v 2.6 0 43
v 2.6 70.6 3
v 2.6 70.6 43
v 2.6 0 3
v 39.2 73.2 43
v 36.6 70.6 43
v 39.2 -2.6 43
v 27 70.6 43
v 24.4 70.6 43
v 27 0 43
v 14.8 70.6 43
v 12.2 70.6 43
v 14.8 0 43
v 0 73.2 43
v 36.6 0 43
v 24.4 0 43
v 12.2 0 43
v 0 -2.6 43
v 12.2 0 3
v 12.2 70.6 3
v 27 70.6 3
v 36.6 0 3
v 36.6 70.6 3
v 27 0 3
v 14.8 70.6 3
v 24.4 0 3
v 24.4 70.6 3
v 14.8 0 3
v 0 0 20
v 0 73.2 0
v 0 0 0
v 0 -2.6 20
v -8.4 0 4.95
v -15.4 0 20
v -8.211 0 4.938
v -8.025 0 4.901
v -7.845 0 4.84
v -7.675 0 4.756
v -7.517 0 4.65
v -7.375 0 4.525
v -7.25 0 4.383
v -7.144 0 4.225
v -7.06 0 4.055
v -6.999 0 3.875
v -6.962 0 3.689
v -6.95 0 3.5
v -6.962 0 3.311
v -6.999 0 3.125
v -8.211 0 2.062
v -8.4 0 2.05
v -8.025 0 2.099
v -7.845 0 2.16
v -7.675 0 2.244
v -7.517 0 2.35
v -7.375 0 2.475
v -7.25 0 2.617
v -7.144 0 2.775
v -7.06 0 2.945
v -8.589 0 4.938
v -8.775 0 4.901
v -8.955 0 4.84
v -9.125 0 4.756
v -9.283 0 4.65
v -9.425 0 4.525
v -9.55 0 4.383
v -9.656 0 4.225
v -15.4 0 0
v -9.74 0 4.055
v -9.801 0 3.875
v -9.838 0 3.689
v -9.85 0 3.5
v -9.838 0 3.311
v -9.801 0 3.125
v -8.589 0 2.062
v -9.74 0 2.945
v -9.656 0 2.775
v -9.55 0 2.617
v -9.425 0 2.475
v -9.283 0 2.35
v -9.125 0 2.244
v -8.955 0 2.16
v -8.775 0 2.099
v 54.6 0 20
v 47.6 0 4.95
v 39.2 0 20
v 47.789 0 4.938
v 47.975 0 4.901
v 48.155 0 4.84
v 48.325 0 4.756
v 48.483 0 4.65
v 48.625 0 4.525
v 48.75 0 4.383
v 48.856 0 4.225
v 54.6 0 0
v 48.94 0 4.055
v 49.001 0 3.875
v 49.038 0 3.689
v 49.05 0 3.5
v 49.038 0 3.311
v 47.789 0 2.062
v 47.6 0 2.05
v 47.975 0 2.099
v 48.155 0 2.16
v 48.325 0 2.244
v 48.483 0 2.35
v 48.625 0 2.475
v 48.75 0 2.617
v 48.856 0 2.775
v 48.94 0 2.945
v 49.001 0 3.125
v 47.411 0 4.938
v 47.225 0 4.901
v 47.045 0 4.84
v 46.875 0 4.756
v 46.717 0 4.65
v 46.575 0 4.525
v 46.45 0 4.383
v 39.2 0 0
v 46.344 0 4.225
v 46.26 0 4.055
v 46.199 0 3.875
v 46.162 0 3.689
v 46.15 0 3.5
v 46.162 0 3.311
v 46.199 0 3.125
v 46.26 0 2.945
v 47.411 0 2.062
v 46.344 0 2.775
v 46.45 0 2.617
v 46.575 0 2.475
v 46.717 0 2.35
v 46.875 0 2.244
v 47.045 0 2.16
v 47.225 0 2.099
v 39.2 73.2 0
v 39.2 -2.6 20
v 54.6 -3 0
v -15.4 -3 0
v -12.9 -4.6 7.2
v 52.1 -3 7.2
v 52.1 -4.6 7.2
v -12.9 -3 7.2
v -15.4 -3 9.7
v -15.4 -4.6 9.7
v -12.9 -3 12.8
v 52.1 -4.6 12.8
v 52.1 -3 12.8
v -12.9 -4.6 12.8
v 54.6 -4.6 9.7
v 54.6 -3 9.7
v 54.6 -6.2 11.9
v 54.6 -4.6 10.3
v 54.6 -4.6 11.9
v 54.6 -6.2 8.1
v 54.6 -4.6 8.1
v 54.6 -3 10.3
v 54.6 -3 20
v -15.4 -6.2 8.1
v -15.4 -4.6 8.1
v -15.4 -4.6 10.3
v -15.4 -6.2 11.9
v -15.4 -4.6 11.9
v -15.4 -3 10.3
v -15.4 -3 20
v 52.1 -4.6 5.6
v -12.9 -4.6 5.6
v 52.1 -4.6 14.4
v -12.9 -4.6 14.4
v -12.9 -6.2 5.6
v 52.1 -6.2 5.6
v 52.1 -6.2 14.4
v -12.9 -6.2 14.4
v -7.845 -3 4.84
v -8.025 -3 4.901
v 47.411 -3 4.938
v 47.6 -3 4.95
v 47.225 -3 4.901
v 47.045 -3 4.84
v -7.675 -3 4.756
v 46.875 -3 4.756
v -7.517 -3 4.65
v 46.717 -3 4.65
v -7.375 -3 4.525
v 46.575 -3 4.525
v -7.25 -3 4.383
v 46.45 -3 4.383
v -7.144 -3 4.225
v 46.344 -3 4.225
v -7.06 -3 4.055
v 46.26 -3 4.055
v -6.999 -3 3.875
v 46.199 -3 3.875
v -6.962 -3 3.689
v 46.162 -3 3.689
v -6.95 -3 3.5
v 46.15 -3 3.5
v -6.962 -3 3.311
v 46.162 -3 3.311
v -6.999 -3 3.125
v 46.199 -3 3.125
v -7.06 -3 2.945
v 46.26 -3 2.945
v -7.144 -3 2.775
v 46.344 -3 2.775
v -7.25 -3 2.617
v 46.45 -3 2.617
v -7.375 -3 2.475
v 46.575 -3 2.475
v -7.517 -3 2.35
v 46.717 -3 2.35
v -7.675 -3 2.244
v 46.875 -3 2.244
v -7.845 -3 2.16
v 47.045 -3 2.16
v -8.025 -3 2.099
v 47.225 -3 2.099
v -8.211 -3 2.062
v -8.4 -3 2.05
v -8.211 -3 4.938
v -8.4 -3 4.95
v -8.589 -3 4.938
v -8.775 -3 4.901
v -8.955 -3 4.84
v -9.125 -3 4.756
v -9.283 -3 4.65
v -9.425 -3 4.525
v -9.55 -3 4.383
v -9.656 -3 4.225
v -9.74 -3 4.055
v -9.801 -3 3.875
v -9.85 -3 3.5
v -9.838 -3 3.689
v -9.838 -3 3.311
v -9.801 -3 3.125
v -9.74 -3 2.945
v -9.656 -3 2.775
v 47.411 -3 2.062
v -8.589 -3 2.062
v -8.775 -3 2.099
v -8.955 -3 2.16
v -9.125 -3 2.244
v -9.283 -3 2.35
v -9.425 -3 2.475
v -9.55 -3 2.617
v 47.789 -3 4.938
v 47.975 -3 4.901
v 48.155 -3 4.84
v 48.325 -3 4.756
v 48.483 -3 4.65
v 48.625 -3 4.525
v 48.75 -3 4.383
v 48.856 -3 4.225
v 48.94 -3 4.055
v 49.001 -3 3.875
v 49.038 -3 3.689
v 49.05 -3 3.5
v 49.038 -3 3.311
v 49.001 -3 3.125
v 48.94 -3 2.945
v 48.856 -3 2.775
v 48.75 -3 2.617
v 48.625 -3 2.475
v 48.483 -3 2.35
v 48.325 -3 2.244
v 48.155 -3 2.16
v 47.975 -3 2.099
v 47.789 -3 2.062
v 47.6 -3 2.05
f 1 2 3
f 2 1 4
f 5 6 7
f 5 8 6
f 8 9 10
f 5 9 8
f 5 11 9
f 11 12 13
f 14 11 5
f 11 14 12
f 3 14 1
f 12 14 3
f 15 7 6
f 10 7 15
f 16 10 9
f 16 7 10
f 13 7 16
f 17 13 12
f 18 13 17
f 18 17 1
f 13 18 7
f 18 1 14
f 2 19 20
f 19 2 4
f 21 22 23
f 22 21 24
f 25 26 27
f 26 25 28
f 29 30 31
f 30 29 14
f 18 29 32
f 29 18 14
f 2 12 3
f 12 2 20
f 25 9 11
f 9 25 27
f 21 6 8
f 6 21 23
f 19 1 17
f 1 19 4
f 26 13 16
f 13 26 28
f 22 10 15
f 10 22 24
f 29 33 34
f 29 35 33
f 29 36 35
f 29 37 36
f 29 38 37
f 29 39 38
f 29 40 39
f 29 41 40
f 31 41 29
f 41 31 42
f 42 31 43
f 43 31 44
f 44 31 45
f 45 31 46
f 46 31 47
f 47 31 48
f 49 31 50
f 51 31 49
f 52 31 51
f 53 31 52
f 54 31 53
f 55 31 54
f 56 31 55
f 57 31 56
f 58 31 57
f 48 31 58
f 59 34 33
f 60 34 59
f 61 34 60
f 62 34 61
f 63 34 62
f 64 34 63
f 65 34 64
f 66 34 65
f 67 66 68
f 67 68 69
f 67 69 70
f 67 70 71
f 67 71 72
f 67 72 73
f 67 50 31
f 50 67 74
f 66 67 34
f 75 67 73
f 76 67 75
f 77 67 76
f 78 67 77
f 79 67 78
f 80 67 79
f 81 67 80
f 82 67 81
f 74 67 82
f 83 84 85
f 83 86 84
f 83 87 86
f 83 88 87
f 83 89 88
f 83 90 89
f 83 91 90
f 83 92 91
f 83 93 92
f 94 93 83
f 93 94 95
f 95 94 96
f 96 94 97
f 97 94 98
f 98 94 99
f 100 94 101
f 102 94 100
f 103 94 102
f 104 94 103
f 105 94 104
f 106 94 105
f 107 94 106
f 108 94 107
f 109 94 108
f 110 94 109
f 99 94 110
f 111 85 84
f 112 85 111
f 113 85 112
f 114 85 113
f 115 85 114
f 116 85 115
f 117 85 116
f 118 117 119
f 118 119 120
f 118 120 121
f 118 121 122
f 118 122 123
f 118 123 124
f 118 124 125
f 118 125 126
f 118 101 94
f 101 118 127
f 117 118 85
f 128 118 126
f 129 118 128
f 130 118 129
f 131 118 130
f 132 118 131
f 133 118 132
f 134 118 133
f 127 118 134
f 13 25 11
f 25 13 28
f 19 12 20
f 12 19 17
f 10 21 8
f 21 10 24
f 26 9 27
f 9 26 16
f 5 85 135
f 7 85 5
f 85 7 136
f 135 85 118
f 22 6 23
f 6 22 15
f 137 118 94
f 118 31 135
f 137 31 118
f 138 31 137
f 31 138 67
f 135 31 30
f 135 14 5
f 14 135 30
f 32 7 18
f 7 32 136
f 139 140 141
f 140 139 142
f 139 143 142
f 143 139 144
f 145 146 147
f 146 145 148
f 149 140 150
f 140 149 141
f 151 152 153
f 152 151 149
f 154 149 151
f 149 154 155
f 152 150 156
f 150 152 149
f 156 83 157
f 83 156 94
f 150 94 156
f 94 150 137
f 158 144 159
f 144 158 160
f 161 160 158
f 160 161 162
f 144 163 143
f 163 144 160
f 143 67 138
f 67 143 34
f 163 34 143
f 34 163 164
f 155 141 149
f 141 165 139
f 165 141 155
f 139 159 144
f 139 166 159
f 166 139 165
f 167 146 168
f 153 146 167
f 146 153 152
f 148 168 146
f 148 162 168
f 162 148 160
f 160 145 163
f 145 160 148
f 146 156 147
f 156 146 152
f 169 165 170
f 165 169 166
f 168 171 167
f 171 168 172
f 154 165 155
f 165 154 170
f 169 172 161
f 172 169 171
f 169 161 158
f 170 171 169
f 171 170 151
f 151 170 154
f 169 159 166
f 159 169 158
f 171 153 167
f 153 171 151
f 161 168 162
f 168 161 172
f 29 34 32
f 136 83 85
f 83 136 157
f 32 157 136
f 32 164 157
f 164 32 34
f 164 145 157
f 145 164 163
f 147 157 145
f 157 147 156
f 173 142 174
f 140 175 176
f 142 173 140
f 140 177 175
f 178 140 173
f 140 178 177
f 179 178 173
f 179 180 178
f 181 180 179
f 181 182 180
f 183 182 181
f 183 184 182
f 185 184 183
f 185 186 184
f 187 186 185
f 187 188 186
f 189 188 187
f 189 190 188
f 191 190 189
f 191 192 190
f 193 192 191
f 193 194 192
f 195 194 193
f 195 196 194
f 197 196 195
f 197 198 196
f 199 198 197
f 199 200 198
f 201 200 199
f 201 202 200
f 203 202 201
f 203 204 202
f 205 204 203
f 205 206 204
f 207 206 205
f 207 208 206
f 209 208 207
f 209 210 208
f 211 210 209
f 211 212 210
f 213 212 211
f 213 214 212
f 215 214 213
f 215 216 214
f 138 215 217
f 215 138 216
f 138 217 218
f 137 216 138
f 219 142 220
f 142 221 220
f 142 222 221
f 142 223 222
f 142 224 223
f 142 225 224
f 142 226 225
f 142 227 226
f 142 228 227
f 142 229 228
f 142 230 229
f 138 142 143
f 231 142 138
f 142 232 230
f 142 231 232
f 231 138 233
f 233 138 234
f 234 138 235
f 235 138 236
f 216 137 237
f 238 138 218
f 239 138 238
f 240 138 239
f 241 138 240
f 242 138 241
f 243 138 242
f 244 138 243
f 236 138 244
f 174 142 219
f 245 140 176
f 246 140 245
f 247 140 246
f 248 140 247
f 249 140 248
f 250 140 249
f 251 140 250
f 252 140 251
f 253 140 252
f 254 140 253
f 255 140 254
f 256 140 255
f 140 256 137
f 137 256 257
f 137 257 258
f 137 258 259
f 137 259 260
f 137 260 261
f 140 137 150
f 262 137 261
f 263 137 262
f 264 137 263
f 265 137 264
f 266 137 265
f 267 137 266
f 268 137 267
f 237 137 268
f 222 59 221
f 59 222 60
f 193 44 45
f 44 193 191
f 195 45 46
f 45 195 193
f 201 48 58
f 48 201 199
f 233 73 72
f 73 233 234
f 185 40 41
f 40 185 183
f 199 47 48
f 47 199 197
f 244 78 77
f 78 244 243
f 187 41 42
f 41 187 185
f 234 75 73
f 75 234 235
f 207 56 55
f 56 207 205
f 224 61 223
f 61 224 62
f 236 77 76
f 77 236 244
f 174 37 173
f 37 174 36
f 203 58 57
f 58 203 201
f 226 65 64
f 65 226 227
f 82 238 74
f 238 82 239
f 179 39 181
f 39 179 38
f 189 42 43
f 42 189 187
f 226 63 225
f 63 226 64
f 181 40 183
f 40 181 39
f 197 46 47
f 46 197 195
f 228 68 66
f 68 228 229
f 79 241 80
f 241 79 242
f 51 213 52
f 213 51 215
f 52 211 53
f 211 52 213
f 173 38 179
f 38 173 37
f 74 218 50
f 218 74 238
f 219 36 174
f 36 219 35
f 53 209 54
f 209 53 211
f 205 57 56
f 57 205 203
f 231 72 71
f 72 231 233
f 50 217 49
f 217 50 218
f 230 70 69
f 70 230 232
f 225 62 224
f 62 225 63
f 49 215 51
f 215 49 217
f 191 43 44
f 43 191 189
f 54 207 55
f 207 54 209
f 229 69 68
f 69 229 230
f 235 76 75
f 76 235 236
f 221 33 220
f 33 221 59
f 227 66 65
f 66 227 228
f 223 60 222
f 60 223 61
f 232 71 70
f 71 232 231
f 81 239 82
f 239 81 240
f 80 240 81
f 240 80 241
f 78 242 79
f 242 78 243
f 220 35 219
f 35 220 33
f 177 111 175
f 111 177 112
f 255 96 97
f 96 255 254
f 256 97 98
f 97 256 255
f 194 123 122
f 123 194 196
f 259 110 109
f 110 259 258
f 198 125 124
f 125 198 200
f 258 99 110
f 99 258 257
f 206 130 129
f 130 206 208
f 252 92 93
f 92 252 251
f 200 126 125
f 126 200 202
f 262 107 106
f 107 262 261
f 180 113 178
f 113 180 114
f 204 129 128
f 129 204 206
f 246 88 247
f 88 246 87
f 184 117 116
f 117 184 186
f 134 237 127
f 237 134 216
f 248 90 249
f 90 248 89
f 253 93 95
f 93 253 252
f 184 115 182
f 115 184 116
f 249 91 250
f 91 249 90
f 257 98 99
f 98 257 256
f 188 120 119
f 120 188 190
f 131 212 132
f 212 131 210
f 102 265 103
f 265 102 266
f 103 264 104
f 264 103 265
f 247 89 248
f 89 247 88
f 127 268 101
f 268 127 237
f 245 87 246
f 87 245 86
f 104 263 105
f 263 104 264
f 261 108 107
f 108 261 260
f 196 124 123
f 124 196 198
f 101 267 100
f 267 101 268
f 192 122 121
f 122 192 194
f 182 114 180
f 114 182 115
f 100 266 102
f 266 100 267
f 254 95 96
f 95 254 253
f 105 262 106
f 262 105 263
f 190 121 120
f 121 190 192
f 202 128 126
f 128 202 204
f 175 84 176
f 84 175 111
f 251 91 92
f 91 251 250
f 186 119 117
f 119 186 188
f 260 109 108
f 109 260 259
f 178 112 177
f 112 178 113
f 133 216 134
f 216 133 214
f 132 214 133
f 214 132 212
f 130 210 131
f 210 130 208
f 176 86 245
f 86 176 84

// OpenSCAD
// ============================================================
// 3-Bay Vertical 2.5" SSD Holder w/ T-Slot Rail Mount
// ============================================================
// Holds three 2.5" drives (70 x 100 x 9 mm) upright, SIDE BY SIDE
// ALONG THE RAIL — all three sit the same distance out from the
// rail rather than receding front-to-back, so no drive hangs off
// the end of a long lever arm. Each bay is a fully enclosed tub
// (floor + left/right dividers + front/back walls) with ONLY the
// top open, so the connector end of each drive stays reachable
// for cables while the drive itself is boxed in on every side.
//
// Mounting: ONE flat plate carrying ONE T-shaped key, running the
// full plate_len (default 70mm) along the rail. The key slides
// into the rail's channel from the end of the extrusion and is
// trapped by that channel's back wall and both side lips; the
// plate bears flat against the rail face. Tapered lead-ins at
// both ends of the key let it start from either direction and
// back straight off the way it went on.
//
// Note on "the longer side": with the drives side by side the
// comb's mounting face is its 39.2mm one — the 70mm faces are the
// ends of the stack, and mounting there is what puts the drives
// back in a front-to-back line. So the plate is instead EXTENDED
// to 70mm along the rail, overhanging the comb ~15mm at each end.
// That's the longest rail engagement available without going back
// to front-to-back drives. Set plate_len = comb_width for a flush
// plate if the overhang is in the way.
//
// Optional M3 set screws (set_screw = true) run through the
// plate's two overhanging ends, where nothing is behind them so a
// driver reaches with the drives still in. Driving them against
// the rail face pushes the bracket out and pulls the key's head
// up against the slot lips, taking the play out of the slide fit.
// Without them the bracket still holds but can rock slightly on
// its clearances.
//
// The rail is assumed HORIZONTAL, drives standing vertically
// (open top up) perpendicular to it. The rail's bottom sits flush
// with the bottom of the holder.
//
// Default key dims (6.2mm mouth / 9.4mm channel) match common
// 20-series T-slot/V-slot extrusion; measure your actual rail and
// adjust slot_mouth/channel_w/lip_thickness/head_depth below if
// it differs — a wrong fit either won't slide in or will be loose.
//
// Print settings: 3-4 walls, 20%+ infill, NO SUPPORTS — the comb
// floor and the mounting plate both sit flat on the bed, and the
// key's 3.2mm horizontal protrusion is short enough to print
// clean. PETG or ABS recommended since drives run warm; PLA is
// fine for a desk build.
// ============================================================

$fn = 48;

// ---- Drive dimensions ----
drive_w = 70;             // drive width (mm) - horizontal, pointing away from the rail
drive_h = 100;             // drive height (mm) - reference only, top is open
drive_t = 9;               // drive thickness (mm) - stacking direction, along the rail
drive_t_clearance = 0.6;   // total slack added to slot thickness for easy insertion
drive_y_clearance = 0.6;   // total slack added along the drive's width

// ---- Holder geometry ----
n_bays      = 3;
wall_t      = 2.6;   // divider / front-wall / back-wall thickness
wall_height = 40;    // how far up the walls enclose the drive (rest is open, at top)
floor_t     = 3;     // base plate thickness
slot_gap    = drive_t + drive_t_clearance;
bay_depth   = drive_w + drive_y_clearance; // how far each bay reaches away from the rail

// ---- Rail mount: one flat plate, one key ----
rail_size     = 20;    // T-slot extrusion cross-section (square)
plate_t       = 3;     // mounting plate thickness
plate_len     = 70;    // how far the plate runs ALONG the rail (engagement length)
plate_h       = 20;    // plate height - matches the rail face it bears against
slot_mouth    = 6.2;   // width of the narrow opening on the rail face
channel_w     = 9.4;   // internal width of the T-slot channel
lip_thickness = 1.6;   // depth of the narrow mouth before it opens into the channel
head_depth    = 1.6;   // how far the wide part of the key sits inside the channel
key_clearance = 0.3;   // per-side clearance so the key slides freely
key_lead_in   = 2.5;   // taper at each end of the key, so it starts into the slot
set_screw     = true;  // M3 set-screw holes through the plate to take up slide play
set_screw_d   = 2.9;   // pilot diameter for an M3 screw self-tapping into plastic
set_screw_inset = 7;   // how far each screw sits in from the plate's ends
set_screw_z   = 3.5;   // screw height on the plate - below the key, on solid rail face

key_neck_w = slot_mouth - 2 * key_clearance;
key_head_w = channel_w - 2 * key_clearance;

// ---- Derived ----
comb_width   = (n_bays + 1) * wall_t + n_bays * slot_gap; // span along the rail
total_height = floor_t + wall_height;
plate_x0     = (comb_width - plate_len) / 2;  // plate centered on the comb
key_z        = rail_size / 2;                 // key on the rail's slot centerline

module divider(x) {
    translate([x, 0, floor_t])
        cube([wall_t, bay_depth, wall_height]);
}

module base_body() {
    union() {
        // floor spans the full footprint, including under the front/back walls
        translate([0, -wall_t, 0])
            cube([comb_width, bay_depth + 2 * wall_t, floor_t]);
        // dividers - close the sides of every bay, stacked along the rail
        for (i = [0 : n_bays])
            divider(i * (wall_t + slot_gap));
        // front/back walls - close the near/far side of every bay
        translate([0, -wall_t, floor_t])
            cube([comb_width, wall_t, wall_height]);
        translate([0, bay_depth, floor_t])
            cube([comb_width, wall_t, wall_height]);
    }
}

module mount_plate() {
    translate([plate_x0, -plate_t, 0])
        cube([plate_len, plate_t, plate_h]);
}

// One segment of the key: a bar running along the rail (X), w tall
// in Z, protruding depth into -Y from y0, tapered at both ends so
// it can start into the slot from either direction.
module key_bar(w, y0, depth) {
    inner_w = max(w - 2 * key_lead_in, 0.1);
    hull() {
        translate([plate_x0 + key_lead_in, y0 - depth, key_z - w / 2])
            cube([plate_len - 2 * key_lead_in, depth, w]);
        translate([plate_x0, y0 - depth, key_z - inner_w / 2])
            cube([plate_len, depth, inner_w]);
    }
}

module t_slot_key() {
    key_bar(key_neck_w, -plate_t, lip_thickness);                 // through the slot mouth
    key_bar(key_head_w, -plate_t - lip_thickness, head_depth);    // inside the channel
}

// Two set screws, placed in the plate's overhanging ends where
// nothing is behind them, so a driver reaches from the back with
// the drives still in. Kept low on the plate, clear of the key:
// pushing the bracket's bottom edge off the rail face both takes
// up the slide play and leans against the way the loaded holder
// wants to tip.
module set_screw_holes() {
    for (x = [plate_x0 + set_screw_inset,
              plate_x0 + plate_len - set_screw_inset])
        translate([x, 1, set_screw_z])
            rotate([90, 0, 0])
                cylinder(d = set_screw_d, h = plate_t + 2);
}

module ssd_holder() {
    difference() {
        union() {
            base_body();
            mount_plate();
            t_slot_key();
        }
        if (set_screw) set_screw_holes();
    }
}

// Set false (by assigning after `include <ssd_holder.scad>`) to use
// this file as a library without rendering the holder itself.
render_holder = true;
if (render_holder) ssd_holder();
